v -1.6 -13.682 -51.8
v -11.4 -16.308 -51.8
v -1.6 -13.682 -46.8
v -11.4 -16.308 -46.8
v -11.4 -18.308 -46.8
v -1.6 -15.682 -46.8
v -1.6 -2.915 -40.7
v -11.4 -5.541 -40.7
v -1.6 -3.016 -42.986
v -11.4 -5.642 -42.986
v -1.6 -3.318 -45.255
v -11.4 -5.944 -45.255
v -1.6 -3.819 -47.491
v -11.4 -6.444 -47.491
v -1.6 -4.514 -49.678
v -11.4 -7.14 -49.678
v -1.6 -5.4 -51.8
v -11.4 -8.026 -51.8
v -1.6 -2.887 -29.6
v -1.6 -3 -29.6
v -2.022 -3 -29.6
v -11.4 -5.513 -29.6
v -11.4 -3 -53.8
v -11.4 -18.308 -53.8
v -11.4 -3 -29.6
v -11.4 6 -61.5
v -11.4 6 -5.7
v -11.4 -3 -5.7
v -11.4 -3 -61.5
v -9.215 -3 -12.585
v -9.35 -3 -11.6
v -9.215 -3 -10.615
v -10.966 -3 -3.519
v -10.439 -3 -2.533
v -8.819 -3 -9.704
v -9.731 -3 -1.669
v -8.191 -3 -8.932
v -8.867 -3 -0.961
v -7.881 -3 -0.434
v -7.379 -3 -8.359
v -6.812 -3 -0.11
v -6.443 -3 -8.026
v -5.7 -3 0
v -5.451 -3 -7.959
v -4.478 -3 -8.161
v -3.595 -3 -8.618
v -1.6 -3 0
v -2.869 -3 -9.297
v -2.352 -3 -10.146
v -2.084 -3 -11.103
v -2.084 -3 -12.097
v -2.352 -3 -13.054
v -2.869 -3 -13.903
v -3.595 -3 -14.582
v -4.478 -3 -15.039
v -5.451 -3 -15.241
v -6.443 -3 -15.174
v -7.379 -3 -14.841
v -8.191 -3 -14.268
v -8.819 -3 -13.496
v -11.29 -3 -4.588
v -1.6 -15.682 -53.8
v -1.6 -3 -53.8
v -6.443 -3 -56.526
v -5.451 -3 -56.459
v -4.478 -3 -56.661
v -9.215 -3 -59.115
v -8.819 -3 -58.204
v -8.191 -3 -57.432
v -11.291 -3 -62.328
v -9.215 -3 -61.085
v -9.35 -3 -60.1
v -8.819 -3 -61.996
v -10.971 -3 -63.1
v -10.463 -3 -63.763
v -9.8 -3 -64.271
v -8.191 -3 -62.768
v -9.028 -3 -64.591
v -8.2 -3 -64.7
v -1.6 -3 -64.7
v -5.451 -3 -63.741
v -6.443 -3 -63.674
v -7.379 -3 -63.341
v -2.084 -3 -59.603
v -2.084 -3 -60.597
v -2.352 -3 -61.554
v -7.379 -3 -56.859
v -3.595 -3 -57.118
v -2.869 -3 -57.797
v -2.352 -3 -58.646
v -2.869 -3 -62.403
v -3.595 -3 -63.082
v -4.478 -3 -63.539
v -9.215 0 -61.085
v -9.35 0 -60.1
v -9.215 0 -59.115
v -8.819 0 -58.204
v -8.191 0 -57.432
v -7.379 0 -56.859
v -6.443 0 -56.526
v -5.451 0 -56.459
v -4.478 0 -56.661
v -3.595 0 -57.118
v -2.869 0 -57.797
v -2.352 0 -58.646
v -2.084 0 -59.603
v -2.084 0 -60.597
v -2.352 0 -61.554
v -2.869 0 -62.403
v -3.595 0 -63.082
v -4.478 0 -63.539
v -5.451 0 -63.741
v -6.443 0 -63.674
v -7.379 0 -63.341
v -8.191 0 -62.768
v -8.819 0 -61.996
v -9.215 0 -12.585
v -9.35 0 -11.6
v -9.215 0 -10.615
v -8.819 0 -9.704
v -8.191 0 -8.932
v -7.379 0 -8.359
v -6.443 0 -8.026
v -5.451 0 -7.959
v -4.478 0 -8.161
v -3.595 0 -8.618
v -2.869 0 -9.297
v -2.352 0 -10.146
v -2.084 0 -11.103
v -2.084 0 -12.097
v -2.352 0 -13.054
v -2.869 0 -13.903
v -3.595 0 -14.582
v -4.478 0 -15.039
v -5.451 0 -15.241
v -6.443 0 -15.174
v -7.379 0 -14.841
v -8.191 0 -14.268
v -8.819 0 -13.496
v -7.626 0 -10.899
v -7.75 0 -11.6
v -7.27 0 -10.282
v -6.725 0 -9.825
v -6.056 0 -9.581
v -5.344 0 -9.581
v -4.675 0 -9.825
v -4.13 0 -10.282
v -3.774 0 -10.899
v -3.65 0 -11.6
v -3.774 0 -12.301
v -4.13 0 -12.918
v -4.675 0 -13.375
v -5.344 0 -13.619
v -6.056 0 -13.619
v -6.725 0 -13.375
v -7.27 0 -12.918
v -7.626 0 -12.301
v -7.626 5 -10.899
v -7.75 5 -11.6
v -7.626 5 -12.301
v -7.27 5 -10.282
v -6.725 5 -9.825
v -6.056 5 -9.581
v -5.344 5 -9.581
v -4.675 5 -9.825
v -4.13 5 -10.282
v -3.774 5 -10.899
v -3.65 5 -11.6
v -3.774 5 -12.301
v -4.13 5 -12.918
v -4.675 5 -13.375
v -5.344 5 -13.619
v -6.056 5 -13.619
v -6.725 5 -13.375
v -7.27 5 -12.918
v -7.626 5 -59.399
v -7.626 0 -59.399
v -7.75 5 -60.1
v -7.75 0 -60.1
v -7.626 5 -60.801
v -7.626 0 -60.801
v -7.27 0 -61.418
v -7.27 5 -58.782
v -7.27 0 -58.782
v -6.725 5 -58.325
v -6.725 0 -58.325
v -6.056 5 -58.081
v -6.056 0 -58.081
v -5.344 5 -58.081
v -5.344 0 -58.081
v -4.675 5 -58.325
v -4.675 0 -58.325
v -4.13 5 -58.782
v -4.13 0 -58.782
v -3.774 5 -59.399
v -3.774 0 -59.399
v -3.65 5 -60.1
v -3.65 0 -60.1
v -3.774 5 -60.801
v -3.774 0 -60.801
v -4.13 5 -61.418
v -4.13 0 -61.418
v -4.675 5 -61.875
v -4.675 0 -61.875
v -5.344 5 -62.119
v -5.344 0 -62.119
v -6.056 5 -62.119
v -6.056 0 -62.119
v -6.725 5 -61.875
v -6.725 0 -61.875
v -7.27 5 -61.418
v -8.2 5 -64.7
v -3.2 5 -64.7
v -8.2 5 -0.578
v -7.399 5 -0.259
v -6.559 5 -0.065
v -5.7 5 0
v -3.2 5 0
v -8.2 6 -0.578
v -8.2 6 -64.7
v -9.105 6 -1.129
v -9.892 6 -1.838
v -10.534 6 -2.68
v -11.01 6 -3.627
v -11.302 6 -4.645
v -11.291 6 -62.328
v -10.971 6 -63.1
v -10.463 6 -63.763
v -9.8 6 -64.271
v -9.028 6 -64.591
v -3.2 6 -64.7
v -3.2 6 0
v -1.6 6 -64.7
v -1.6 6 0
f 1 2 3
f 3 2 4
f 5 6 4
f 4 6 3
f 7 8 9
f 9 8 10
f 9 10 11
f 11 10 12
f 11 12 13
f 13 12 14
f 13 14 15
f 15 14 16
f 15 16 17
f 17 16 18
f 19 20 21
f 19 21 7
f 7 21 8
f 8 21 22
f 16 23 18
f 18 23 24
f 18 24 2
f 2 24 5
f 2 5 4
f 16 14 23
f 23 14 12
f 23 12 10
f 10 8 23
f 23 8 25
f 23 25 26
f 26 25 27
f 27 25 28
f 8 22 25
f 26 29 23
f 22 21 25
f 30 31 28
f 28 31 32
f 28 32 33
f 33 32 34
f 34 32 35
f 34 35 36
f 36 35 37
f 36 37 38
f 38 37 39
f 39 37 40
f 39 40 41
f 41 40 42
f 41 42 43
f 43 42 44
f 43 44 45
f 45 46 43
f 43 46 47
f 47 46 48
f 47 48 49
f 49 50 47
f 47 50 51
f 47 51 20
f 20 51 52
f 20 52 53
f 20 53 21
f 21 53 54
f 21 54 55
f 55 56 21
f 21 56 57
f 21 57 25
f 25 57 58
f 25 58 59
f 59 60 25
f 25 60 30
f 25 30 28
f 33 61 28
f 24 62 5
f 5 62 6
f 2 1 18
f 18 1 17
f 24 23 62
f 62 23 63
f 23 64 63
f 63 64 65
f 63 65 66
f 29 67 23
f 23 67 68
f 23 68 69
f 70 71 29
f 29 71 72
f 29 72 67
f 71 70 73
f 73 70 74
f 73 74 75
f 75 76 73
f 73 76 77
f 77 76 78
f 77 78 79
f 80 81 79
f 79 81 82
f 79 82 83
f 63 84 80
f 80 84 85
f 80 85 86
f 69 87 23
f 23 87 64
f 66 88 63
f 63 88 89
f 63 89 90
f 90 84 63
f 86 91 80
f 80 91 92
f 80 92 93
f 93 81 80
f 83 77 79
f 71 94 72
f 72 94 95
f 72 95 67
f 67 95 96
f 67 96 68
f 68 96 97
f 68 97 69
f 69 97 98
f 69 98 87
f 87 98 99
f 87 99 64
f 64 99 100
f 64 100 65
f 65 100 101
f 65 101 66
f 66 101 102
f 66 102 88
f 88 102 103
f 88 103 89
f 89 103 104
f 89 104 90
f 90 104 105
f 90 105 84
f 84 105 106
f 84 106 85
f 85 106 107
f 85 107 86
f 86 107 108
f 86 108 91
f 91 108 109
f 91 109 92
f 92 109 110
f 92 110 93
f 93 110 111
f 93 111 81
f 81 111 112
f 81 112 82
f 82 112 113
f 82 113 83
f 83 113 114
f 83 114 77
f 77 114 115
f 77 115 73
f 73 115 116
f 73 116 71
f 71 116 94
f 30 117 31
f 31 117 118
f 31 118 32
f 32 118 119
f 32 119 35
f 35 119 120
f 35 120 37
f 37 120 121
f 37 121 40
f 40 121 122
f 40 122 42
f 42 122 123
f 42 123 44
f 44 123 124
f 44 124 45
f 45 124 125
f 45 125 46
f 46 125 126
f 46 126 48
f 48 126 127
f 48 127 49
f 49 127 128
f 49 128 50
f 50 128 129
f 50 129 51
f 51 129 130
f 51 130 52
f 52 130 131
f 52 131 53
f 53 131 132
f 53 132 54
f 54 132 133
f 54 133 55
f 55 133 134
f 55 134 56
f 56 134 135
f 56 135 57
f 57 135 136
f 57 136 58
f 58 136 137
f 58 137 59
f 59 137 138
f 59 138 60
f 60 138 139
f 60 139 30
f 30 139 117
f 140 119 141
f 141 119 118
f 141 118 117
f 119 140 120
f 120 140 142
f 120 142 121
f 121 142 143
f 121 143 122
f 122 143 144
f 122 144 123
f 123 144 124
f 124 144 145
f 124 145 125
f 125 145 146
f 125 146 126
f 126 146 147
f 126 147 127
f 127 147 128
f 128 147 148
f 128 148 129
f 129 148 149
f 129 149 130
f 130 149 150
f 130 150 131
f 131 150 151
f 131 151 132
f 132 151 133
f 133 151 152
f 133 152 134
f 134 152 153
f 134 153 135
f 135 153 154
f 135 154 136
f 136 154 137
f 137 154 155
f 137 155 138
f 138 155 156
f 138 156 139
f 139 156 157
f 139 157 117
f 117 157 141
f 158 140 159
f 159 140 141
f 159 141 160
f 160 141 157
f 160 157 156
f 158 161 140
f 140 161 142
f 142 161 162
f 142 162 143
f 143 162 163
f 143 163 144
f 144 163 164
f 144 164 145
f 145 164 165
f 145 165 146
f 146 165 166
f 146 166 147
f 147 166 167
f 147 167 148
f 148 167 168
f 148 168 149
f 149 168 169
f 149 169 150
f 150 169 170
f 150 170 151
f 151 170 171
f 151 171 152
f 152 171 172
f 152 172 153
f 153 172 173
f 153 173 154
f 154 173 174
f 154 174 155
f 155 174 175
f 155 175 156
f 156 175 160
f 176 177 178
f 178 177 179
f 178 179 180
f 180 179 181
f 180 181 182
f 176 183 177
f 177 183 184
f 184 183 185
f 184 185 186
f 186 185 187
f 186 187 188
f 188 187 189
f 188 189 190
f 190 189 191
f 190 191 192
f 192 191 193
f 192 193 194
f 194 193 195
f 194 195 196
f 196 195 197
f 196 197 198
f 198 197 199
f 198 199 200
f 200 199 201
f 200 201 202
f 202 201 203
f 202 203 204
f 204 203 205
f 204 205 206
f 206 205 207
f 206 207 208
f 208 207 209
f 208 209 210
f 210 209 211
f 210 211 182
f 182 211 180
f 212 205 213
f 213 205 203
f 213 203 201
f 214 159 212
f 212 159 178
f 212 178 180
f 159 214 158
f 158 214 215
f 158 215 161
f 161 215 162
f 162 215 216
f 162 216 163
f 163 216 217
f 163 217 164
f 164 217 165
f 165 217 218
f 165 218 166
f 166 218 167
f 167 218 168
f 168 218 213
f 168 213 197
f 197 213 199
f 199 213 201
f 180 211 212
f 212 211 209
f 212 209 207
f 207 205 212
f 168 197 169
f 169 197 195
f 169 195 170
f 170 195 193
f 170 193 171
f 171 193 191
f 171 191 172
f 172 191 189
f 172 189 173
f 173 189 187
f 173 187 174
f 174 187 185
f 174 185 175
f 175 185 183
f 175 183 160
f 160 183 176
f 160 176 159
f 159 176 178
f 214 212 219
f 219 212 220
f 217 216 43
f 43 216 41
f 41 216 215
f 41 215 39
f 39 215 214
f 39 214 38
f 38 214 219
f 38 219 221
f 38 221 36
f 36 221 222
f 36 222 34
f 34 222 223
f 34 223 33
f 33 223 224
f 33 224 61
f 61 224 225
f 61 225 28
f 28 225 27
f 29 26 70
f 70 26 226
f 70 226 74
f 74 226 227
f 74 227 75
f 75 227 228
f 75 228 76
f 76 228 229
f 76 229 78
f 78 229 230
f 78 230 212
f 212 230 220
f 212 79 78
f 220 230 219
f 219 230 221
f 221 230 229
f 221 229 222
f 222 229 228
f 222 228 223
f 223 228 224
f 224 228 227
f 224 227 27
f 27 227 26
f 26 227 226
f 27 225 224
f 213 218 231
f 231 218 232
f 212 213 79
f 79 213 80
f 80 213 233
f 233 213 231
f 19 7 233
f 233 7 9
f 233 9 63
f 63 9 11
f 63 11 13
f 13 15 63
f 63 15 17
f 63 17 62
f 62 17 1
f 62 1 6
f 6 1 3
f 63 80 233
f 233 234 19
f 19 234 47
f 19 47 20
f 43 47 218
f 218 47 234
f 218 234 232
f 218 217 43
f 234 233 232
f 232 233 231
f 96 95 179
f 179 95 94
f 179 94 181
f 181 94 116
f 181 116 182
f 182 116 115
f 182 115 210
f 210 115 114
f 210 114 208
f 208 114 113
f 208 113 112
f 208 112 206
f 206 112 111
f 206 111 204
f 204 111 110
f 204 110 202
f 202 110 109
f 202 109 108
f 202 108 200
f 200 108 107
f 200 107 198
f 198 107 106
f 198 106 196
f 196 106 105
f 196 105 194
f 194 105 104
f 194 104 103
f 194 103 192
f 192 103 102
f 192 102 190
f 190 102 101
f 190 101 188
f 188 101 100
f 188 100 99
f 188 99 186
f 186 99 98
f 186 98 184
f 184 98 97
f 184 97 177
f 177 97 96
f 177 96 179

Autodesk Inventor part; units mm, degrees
ref_plane "YZ Plane" through (0, 0, 0) normal (1, 0, 0) x (0, 1, 0)
sketch "Sketch1" plane through (0, 0, 0) normal (0, 1, 0) x (-1, 0, 0)
  line L0 (0, 0) -> (11.4, 0) construction
  line L1 (11.4, 0) -> (11.4, -64.7) construction
  line L2 (11.4, -64.7) -> (0, -64.7) construction
  line L3 (0, -64.7) -> (0, 0) construction
  line L4 (5.7, 0) -> (5.7, -64.7) construction
  line L5 (11.4, -32.35) -> (0, -32.35) construction
  circle A0 centre (5.7, -11.6) radius 1.6 construction
  circle A1 centre (5.7, -11.6) radius 2.05
  circle A2 centre (5.7, -21.3) radius 1.6 construction
  circle A3 centre (5.7, -21.3) radius 2.05 construction
  circle A4 centre (5.7, -31) radius 1.6 construction
  circle A5 centre (5.7, -31) radius 2.05 construction
  circle A6 centre (5.7, -40.7) radius 1.6 construction
  circle A7 centre (5.7, -40.7) radius 2.05 construction
  circle A8 centre (5.7, -50.4) radius 1.6 construction
  circle A9 centre (5.7, -50.4) radius 2.05 construction
  circle A10 centre (5.7, -60.1) radius 1.6 construction
  circle A11 centre (5.7, -60.1) radius 2.05
  line L6 (8.2, 0) -> (3.2, 0) construction
  line L7 (3.2, 0) -> (3.2, -64.7)
  line L8 (3.2, -64.7) -> (8.2, -64.7) construction
  line L9 (8.2, -64.7) -> (8.2, 0)
  circle A12 centre (5.7, -11.6) radius 2.5 construction
  circle A13 centre (5.7, -5.7) radius 5.7 construction
  circle A14 centre (8.2, -61.5) radius 3.2 construction
  line L10 (0, -64.7) -> (3.2, -64.7) construction
  line L11 (1.6, -64.7) -> (1.6, 0)
  circle A15 centre (5.7, -60.1) radius 3.65
  circle A16 centre (5.7, -50.4) radius 3.65 construction
  circle A17 centre (5.7, -40.7) radius 3.65 construction
  circle A18 centre (5.7, -31) radius 3.65 construction
  circle A19 centre (5.7, -21.3) radius 3.65 construction
  circle A20 centre (5.7, -11.6) radius 3.65
  arc A21 (8.2, -64.7) -> (11.4, -61.5) centre (8.2, -61.5) ccw
  arc A22 (11.4, -5.7) -> (5.7, 0) centre (5.7, -5.7) ccw
  line L12 (11.4, -61.5) -> (11.4, -5.7)
  line L13 (1.6, -64.7) -> (8.2, -64.7)
  line L14 (1.6, 0) -> (5.7, 0)
  point P0 (5.7, -10)
  point P1 (5.7, -61.7)
  point P2 (8.2, -0.5775)
  dimension "d0" = 3.2
  dimension "d1" = 4.1
  dimension "d4" = 9.7
  dimension "d9" = 6.5
  dimension "d10" = 10
  dimension "d11" = 3
  dimension "d12" = 0.9
  dimension "d13" = 3.2
  dimension "d14" = 7.3
  dimension "d39" = 48.5
extrude "Extrusion1" add sketch "Sketch1" along normal blind 6 contours L7 A20 A15 L13 L11 L14 | L7 A20 | A20 L9 | L9 A22 L12 A21 A15 A20 | L7 A15 | A15 L9
extrude "Extrusion3" add sketch "Sketch1" along normal blind 5 contours L14 A22 L9 A20 L7 | A20 L9 L7 | A20 L9 A15 L7 | A15 L9 L7 | L7 A15 L9 L13
extrude "Extrusion2" add sketch "Sketch1" against normal blind 3 contours L14 A22 L9 A20 L7 | L7 A20 A15 L13 L11 L14 | A20 L9 A15 L7 | L9 A22 L12 A21 A15 A20 | L7 A15 L9 L13
sketch "Sketch2" plane through (0, -3, 0) normal (0, -1, 0) x (1, 0, 0)
  line L0 (-1.6, -64.7) -> (-1.6, 0) construction
  circle A0 centre (-5.7, -11.6) radius 3.65 construction
  circle A1 centre (-5.7, -60.1) radius 3.65 construction
  line L1 (-11.4, -5.7) -> (-11.4, -61.5) construction
  arc A2 (-11.4, -61.5) -> (-8.2, -64.7) centre (-8.2, -61.5) ccw construction
  line L2 (-8.2, -64.7) -> (-1.6, -64.7) construction
  arc A3 (-5.7, 0) -> (-11.4, -5.7) centre (-5.7, -5.7) ccw construction
  line L3 (-1.6, 0) -> (-5.7, 0) construction
  line L4 (-5.7, -60.1) -> (-5.7, -11.6) construction
  circle A4 centre (-5.7, -55.25) radius 4.85 construction
  circle A5 centre (-5.7, -45.55) radius 4.85 construction
  circle A6 centre (-5.7, -35.85) radius 4.85 construction
  circle A7 centre (-5.7, -26.15) radius 4.85 construction
  circle A8 centre (-5.7, -16.45) radius 4.85 construction
  line L5 (0, -51.8) -> (-11.4, -51.8) construction
  line L6 (-11.4, -51.8) -> (-11.4, -29.6) construction
  line L7 (-11.4, -29.6) -> (0, -29.6) construction
  line L8 (0, -29.6) -> (0, -51.8) construction
  line L9 (0, -51.8) -> (-11.4, -29.6) construction
  line L10 (-11.4, -51.8) -> (0, -29.6) construction
  line L11 (0, -27.1) -> (-11.4, -27.1) construction
  line L12 (-11.4, -27.1) -> (-11.4, -54.3) construction
  line L13 (-11.4, -54.3) -> (0, -54.3) construction
  line L14 (0, -54.3) -> (0, -27.1) construction
  line L15 (0, -27.1) -> (-11.4, -54.3) construction
  line L16 (-11.4, -27.1) -> (0, -54.3) construction
  line L17 (-11.4, -54.3) -> (-1.6, -54.3)
  line L18 (-1.6, -54.3) -> (-1.6, -51.8)
  line L19 (-1.6, -51.8) -> (-11.4, -51.8)
  line L20 (-11.4, -51.8) -> (-11.4, -54.3)
  point P0 (0, 0)
  point P1 (-5.7, -50.4)
  point P2 (-5.7, -40.7)
  point P3 (-5.7, -31)
  point P4 (-5.7, -21.3)
  dimension "d21" = 22.2
  dimension "d22" = 2.5
ref_plane "Work Plane1" through (-1.6, -3, -51.8) normal (0, 0, 1) x (1, 0, 0)
sketch "Sketch3" plane through (-1.6, -3, -51.8) normal (0, 0, 1) x (1, 0, 0)
  line L0 (0, 0) -> (-9.8, 0) projected
  line L1 (0, 0) -> (0, -2.4)
  line L2 (0, -2.4) -> (-9.8, -5.0259)
  line L3 (-9.8, -5.0259) -> (-9.8, 0)
  line L4 (0, -2.4) -> (-9.8, -2.4) construction
  line L5 (0, -2.4) -> (0, -10.6822)
  line L6 (0, -10.6822) -> (-9.8, -13.3081)
  line L7 (-9.8, -13.3081) -> (-9.8, -5.0259)
  line L8 (-9.8, -13.3081) -> (-9.8, -15.3081)
  line L9 (-9.8, -15.3081) -> (0, -12.6822)
  line L10 (0, -12.6822) -> (0, -10.6822)
  line L11 (-9.8, -5.0259) -> (-7.7294, -12.7533) construction
  point P0 (1.6, 3)
  dimension "d23" = 2.4
  dimension "d24" = 15
  dimension "d25" = 9.8
  dimension "d26" = 2
  dimension "d27" = 8
extrude "Extrusion4" add sketch "Sketch3" against normal blind 2
extrude "Extrusion5" add sketch "Sketch3" along normal blind 22.2 contours L1 L2 L3 L0
ref_plane "Work Plane2" through (-11.4, -8.0259, -51.8) normal (-0.9659, -0.2588, 0) x (0.2588, -0.9659, 0)
sketch "Sketch4" plane through (-11.4, -8.0259, -51.8) normal (-0.9659, -0.2588, 0) x (0.2588, -0.9659, 0)
  line L0 (0, 0) -> (0, 22.2) projected
  arc A0 (0, 22.2) -> (0, 0) centre (24.4688, 11.1) ccw
  line L1 (-2.4, 11.1) -> (-2.4273, 22.2)
  line L2 (-4.8546, 22.2) -> (0, 22.2) projected
  line L3 (0, 22.2) -> (-2.4273, 22.2)
  point P0 (-4.8019, 51.8)
  point P1 (0, 11.1)
  dimension "d32" = 2.4
extrude "Extrusion6" cut sketch "Sketch4" against normal through all
extrude "Extrusion7" add sketch "Sketch3" along normal blind 5 contours L10 L9 L8 L6
properties part number "Right-Brush-Bottom"
